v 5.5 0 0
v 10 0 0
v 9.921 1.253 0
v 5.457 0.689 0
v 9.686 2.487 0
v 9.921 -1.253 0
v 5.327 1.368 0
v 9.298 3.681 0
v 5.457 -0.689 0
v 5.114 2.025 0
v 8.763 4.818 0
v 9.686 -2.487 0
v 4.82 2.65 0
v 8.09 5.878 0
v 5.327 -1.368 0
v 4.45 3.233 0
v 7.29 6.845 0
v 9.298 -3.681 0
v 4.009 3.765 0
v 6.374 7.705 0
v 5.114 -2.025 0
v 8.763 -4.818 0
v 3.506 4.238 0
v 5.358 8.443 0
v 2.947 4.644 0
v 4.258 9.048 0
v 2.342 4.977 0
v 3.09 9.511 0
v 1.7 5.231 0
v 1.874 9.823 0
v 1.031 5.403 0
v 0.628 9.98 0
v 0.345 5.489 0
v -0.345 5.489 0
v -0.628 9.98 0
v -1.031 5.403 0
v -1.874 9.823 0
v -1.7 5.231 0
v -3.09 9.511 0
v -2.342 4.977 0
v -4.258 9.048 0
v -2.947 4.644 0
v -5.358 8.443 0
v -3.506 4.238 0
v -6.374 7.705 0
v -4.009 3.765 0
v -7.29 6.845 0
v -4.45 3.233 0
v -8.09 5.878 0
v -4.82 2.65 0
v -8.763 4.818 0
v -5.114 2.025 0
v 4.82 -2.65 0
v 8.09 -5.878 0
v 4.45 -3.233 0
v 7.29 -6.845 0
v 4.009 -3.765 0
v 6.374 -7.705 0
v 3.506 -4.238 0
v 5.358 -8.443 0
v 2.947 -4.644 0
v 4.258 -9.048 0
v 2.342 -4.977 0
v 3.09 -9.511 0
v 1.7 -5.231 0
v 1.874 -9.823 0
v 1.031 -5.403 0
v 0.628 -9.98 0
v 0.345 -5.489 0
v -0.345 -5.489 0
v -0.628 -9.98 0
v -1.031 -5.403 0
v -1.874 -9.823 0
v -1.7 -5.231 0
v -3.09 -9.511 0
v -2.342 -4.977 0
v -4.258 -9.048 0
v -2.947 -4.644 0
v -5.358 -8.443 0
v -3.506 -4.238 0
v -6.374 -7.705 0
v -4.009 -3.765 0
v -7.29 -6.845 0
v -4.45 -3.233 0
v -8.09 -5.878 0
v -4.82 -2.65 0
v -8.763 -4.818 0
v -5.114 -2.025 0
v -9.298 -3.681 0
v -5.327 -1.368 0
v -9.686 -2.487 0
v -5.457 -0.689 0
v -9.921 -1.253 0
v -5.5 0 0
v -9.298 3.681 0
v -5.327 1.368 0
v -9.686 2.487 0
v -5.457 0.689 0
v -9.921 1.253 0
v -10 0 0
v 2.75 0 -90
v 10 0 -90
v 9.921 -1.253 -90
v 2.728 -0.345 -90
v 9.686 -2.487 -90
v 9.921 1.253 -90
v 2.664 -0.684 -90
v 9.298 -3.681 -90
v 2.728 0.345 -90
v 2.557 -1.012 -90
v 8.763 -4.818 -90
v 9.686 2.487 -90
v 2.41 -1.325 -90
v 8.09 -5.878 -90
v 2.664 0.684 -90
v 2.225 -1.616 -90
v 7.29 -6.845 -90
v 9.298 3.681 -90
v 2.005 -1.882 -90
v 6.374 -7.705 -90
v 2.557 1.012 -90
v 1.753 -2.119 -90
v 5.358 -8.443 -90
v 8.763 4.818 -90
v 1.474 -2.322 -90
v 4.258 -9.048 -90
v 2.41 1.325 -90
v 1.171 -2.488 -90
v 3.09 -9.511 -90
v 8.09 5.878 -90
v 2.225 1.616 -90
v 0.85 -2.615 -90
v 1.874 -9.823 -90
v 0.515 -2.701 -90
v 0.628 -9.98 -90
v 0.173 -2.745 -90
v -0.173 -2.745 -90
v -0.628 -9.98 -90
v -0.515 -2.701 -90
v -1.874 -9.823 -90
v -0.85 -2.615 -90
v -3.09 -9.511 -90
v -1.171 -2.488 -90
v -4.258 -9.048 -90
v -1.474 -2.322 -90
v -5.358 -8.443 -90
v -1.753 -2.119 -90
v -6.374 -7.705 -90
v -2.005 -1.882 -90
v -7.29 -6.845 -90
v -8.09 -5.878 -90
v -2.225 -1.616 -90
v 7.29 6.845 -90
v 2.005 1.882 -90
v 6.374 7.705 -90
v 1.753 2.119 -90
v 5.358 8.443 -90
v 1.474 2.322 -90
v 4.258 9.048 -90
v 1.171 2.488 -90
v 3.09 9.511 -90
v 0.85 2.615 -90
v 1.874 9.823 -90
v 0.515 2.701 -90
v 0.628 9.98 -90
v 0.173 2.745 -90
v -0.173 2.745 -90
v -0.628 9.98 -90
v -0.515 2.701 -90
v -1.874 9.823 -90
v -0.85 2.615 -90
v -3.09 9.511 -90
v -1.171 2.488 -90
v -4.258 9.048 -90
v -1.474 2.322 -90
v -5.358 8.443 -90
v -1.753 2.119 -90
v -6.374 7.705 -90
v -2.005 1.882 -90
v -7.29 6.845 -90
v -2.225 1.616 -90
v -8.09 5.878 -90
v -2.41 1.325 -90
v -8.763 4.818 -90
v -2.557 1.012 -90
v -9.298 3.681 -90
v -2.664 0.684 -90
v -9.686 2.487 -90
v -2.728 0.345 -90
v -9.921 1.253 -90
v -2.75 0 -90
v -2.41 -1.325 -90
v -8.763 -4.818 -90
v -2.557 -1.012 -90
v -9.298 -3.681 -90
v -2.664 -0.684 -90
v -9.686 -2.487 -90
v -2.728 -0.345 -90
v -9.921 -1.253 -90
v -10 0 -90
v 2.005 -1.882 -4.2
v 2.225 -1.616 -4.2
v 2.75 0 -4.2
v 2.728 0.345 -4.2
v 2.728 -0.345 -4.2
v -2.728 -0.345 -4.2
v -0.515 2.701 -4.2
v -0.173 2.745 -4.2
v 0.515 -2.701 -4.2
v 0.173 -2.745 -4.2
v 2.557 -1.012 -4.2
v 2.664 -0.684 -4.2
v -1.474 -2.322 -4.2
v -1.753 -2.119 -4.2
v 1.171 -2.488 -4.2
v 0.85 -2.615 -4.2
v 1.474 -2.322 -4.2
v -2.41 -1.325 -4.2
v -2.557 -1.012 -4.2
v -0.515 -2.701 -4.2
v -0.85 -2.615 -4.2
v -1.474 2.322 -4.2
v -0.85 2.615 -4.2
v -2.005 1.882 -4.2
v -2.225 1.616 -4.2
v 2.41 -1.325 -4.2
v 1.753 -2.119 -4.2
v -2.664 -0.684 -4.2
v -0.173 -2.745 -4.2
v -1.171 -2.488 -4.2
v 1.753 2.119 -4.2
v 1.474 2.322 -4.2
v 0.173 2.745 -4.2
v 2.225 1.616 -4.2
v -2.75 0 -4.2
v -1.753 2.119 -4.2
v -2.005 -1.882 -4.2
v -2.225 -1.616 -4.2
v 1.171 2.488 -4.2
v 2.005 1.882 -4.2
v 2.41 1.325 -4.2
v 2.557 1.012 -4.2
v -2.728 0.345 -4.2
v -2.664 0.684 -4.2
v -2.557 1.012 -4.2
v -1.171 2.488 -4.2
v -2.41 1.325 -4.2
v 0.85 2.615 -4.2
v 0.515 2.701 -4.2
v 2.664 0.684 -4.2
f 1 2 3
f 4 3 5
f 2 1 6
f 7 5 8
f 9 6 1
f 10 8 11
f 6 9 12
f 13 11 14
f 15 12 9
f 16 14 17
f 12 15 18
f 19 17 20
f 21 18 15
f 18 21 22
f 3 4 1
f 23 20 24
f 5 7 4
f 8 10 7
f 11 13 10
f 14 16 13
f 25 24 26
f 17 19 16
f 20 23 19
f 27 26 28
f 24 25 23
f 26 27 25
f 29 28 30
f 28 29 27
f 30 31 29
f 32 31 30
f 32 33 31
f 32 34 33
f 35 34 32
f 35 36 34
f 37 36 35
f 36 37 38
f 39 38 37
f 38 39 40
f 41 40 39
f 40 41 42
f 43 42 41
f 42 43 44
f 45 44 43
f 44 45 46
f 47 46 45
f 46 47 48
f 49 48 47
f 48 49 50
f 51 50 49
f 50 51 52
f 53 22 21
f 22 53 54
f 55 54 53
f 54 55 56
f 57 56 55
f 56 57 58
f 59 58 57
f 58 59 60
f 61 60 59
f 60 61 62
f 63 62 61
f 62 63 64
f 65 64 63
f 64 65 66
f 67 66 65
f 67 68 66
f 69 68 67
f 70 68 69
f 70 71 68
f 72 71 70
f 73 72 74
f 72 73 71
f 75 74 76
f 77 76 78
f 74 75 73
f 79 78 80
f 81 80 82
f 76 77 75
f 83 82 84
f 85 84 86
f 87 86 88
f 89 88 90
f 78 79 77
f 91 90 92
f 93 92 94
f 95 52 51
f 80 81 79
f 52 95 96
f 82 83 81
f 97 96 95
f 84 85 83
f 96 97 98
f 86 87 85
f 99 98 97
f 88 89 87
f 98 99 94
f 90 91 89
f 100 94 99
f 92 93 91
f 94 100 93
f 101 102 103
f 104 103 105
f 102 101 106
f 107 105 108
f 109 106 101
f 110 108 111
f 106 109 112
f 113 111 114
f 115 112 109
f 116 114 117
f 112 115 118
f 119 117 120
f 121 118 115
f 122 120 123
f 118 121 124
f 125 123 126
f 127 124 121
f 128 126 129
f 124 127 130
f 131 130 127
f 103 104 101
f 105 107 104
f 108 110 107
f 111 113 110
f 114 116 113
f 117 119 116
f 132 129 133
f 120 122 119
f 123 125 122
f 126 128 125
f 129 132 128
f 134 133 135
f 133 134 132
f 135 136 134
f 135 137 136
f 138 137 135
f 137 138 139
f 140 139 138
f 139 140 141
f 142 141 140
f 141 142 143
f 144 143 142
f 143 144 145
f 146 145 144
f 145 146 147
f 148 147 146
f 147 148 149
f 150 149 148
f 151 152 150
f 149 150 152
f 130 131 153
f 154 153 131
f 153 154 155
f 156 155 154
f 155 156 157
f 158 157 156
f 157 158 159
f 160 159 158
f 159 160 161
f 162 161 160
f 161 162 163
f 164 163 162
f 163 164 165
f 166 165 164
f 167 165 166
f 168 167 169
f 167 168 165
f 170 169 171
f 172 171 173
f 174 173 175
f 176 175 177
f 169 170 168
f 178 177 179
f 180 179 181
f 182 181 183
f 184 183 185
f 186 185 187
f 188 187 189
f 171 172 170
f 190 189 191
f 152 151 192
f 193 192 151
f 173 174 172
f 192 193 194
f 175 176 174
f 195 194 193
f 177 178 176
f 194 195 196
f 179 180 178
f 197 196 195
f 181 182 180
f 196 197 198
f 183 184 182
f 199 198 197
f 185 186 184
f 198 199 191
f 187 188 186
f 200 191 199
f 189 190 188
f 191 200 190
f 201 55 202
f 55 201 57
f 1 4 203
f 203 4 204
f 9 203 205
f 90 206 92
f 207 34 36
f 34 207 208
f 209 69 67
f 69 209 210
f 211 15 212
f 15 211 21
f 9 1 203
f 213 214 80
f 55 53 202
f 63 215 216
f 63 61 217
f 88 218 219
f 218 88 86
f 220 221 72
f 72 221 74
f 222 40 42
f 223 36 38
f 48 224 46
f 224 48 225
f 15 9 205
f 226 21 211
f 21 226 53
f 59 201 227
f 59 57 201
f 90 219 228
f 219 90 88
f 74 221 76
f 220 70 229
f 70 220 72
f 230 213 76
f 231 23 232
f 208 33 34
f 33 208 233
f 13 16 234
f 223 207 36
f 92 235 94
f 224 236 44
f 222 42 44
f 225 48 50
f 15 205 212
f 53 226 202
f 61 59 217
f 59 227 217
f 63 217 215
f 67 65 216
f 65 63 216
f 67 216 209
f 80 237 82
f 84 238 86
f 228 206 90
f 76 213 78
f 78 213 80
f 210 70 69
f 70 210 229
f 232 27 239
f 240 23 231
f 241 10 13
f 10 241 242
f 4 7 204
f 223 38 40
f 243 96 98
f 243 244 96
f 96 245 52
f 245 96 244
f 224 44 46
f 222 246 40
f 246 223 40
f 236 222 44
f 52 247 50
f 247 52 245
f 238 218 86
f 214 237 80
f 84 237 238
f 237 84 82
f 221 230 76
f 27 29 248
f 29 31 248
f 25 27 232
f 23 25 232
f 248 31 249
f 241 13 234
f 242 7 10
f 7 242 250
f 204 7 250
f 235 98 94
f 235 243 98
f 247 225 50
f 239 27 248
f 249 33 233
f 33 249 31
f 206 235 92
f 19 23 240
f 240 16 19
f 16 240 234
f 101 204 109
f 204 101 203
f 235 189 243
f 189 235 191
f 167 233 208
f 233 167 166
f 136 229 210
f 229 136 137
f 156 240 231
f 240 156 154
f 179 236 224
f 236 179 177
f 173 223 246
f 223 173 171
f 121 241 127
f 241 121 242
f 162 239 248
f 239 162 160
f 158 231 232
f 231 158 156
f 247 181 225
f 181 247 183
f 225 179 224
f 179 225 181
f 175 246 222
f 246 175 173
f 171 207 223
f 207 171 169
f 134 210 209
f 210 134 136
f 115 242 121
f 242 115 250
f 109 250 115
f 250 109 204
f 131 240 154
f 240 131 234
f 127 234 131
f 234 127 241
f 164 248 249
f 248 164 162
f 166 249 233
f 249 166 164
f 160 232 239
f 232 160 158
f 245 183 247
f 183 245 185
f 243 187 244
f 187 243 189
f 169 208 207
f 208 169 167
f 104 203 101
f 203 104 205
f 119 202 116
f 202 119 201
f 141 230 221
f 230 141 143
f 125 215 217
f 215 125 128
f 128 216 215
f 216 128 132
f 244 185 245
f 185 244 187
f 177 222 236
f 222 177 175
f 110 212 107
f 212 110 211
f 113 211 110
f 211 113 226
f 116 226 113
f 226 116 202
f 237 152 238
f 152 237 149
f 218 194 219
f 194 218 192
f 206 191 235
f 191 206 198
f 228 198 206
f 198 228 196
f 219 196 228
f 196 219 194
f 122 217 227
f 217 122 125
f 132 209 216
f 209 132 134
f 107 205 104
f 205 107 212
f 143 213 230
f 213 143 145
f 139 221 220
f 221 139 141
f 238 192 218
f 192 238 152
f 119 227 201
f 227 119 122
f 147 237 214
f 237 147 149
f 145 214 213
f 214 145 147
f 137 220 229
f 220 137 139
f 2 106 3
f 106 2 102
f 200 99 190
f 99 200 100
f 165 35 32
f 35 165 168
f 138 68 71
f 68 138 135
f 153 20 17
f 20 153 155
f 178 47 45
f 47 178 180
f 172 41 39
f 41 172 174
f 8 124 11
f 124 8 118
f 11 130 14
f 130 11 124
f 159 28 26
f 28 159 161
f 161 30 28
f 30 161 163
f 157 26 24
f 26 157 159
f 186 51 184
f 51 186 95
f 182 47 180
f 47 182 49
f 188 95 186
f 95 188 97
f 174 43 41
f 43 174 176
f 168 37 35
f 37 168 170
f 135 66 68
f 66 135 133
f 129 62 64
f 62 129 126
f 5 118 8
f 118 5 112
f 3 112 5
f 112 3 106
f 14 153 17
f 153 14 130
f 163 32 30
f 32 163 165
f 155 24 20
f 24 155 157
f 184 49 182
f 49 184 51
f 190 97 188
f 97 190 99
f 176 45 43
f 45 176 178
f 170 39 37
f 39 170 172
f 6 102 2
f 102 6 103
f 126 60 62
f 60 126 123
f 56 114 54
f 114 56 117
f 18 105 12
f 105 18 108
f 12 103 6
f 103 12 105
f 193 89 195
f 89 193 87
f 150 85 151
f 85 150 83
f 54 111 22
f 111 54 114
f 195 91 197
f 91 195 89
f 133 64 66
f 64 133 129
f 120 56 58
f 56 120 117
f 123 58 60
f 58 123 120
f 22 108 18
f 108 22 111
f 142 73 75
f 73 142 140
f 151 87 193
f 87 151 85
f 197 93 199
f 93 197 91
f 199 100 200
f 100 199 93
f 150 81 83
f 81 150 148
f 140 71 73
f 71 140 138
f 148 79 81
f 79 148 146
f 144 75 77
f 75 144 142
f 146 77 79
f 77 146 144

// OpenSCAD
$fn = 50;


difference() {
	union() {
		translate(v = [0, 0, -90.0000000000]) {
			cylinder(h = 90, r = 10.0000000000);
		}
	}
	union() {
		translate(v = [0, 0, 0]) {
			rotate(a = [0, 0, 0]) {
				difference() {
					union() {
						#translate(v = [0, 0, -90.0000000000]) {
							cylinder(h = 90, r = 2.2500000000);
						}
						#translate(v = [0, 0, -4.2000000000]) {
							cylinder(h = 4.2000000000, r1 = 2.7500000000, r2 = 5.5000000000);
						}
						#translate(v = [0, 0, -90.0000000000]) {
							cylinder(h = 90, r = 2.7500000000);
						}
						#translate(v = [0, 0, -90.0000000000]) {
							cylinder(h = 90, r = 2.2500000000);
						}
					}
					union();
				}
			}
		}
	}
}
